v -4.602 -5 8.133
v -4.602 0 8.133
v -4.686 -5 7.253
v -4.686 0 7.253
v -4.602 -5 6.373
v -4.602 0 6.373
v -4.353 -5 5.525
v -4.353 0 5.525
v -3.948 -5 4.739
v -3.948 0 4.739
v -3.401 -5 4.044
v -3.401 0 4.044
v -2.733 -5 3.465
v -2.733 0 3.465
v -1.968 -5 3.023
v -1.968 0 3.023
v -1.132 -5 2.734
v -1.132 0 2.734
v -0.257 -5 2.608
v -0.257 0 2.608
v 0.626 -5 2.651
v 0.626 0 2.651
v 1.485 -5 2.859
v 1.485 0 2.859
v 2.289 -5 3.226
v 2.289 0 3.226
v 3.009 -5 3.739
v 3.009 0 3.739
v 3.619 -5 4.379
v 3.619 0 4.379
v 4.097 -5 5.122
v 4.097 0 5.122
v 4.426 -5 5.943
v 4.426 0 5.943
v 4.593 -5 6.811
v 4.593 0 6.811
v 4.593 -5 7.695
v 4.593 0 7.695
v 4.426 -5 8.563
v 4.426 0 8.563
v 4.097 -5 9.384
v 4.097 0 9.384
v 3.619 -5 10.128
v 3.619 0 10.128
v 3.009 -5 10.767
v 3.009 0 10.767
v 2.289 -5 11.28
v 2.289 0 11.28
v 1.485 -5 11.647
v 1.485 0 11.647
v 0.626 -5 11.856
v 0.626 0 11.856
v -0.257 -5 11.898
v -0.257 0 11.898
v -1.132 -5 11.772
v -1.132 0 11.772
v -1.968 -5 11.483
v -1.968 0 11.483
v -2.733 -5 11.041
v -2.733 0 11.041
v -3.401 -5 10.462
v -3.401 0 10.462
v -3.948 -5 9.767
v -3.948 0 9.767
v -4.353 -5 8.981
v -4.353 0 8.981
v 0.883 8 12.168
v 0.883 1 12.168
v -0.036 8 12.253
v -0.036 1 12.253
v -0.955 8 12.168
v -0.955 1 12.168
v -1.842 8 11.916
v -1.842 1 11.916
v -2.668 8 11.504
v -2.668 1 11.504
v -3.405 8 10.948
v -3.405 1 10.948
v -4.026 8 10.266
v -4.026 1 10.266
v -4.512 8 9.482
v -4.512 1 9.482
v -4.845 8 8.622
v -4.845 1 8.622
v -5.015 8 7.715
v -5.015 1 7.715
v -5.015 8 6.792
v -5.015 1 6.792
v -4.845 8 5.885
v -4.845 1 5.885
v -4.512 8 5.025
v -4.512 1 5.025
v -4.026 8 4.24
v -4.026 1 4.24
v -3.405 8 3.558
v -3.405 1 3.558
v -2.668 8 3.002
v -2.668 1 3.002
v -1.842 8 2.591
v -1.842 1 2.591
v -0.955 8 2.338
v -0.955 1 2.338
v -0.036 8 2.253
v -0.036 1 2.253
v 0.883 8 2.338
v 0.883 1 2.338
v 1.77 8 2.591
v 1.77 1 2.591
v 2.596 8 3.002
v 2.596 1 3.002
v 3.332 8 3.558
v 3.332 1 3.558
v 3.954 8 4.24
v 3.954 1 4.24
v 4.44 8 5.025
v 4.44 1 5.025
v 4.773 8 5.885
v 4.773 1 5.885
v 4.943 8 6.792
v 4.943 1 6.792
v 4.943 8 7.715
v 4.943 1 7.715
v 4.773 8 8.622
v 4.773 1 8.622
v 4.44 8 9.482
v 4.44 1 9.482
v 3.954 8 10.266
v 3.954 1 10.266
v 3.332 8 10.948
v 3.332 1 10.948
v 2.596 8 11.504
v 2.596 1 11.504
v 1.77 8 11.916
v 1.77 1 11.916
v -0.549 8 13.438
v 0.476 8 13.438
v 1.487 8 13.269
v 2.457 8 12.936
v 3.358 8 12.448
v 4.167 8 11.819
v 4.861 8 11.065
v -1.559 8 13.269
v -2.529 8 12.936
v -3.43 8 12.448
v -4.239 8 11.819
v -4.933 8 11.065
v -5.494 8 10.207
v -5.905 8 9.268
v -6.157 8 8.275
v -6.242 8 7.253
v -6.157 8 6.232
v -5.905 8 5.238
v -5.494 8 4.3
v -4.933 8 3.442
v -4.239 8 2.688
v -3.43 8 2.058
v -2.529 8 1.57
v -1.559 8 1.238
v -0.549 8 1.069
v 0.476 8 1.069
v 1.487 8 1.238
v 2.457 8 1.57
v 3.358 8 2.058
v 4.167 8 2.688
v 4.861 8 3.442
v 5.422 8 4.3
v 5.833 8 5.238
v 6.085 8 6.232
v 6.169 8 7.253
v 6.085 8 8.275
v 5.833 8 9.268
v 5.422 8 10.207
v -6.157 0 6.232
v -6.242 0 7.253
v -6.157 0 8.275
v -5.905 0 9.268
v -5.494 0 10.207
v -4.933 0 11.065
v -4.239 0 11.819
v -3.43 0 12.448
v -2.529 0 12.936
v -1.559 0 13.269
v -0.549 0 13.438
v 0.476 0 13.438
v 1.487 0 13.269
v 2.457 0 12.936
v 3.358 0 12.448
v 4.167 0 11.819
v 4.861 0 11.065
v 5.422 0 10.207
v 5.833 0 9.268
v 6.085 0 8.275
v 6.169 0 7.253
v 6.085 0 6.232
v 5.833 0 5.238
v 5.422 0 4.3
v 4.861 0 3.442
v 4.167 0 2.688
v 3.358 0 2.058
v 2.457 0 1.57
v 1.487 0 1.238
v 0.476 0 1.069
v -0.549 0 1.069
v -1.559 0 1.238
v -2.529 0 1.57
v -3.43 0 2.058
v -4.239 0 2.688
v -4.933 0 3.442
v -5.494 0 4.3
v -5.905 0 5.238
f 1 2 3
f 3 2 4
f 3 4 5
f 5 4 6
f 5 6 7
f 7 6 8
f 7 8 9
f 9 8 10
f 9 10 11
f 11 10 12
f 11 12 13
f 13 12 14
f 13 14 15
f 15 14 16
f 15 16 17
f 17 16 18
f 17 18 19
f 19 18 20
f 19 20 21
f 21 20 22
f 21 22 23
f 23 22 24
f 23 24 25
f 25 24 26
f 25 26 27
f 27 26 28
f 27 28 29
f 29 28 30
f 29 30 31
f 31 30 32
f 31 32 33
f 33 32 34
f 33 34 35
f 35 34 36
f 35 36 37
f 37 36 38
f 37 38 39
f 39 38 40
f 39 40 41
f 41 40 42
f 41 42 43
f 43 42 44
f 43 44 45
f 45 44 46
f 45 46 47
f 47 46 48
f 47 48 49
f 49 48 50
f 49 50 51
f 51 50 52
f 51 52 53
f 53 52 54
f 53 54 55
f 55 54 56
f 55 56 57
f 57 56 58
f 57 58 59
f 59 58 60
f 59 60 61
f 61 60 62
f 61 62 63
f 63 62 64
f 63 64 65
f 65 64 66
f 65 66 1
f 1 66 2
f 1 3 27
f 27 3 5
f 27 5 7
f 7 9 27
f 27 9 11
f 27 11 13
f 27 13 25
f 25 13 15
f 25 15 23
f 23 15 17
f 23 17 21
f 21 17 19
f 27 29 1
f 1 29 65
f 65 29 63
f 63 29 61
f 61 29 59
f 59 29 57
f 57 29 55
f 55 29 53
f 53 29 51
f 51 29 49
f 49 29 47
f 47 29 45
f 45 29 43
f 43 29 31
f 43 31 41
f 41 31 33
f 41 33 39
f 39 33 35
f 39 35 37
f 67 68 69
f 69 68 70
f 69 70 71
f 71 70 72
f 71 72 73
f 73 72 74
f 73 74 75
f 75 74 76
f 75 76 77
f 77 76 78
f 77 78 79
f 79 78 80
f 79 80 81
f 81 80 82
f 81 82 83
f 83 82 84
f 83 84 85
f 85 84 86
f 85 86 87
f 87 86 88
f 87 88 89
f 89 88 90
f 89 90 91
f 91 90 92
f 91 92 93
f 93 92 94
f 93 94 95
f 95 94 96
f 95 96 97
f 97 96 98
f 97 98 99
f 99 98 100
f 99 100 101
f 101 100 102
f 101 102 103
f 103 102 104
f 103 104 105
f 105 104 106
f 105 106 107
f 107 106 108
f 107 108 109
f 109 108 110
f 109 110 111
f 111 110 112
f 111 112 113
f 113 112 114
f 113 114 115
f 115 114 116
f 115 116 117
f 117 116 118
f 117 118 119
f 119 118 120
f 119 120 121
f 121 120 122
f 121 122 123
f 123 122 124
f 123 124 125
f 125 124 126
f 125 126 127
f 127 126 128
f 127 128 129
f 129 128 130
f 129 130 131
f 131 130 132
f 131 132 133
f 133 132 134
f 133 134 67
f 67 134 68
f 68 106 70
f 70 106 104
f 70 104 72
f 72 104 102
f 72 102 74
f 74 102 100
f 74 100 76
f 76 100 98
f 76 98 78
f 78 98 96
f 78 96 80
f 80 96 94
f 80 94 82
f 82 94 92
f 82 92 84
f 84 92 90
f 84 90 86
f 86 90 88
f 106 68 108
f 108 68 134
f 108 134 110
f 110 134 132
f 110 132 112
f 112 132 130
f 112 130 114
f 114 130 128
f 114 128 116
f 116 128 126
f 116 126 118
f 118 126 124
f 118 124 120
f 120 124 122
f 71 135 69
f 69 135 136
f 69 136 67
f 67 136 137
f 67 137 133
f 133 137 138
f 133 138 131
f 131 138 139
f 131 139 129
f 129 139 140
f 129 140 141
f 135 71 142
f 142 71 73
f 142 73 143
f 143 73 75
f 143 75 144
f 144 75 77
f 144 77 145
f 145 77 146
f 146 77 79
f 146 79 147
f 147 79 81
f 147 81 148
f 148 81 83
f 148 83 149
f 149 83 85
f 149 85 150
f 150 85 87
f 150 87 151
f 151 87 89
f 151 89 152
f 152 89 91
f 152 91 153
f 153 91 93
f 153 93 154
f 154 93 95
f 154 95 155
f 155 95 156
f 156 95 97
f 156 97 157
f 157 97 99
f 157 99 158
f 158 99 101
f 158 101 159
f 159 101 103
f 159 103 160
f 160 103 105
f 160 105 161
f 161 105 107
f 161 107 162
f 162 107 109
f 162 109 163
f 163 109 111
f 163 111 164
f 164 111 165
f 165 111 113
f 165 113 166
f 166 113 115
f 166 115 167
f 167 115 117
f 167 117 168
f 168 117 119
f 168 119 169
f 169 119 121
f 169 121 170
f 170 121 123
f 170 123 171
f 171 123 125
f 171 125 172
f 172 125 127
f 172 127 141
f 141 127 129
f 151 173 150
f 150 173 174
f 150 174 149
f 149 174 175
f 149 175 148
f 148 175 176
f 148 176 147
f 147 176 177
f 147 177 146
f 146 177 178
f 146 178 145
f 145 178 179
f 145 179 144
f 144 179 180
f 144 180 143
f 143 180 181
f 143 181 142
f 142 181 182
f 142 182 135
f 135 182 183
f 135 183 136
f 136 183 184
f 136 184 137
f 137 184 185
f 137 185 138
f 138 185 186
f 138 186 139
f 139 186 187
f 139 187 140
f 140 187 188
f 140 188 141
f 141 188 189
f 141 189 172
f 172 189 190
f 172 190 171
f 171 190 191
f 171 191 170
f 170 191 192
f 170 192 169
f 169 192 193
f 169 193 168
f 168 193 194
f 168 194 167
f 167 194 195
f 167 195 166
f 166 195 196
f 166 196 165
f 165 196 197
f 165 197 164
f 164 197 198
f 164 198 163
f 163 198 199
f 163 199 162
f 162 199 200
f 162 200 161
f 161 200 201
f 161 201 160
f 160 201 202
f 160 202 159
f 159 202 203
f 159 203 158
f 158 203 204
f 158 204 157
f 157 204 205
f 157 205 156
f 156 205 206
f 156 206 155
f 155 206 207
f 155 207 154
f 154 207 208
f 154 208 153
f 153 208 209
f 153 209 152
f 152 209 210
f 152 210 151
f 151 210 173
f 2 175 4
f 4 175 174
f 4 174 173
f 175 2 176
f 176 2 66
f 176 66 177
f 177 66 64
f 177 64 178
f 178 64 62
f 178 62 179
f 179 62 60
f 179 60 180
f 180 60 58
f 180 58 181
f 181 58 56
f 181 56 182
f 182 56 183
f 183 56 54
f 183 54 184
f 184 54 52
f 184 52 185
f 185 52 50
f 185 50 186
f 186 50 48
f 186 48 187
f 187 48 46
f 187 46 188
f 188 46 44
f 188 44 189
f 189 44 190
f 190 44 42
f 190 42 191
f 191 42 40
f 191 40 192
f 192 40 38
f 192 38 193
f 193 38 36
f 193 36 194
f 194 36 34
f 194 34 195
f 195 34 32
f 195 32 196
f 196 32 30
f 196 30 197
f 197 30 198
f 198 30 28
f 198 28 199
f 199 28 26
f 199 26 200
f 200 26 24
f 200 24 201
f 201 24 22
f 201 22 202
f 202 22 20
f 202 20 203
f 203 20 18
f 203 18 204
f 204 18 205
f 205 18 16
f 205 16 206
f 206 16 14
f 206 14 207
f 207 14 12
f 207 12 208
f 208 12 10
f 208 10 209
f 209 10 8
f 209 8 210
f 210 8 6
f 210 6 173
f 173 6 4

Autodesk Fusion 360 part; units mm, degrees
sketch "Sketch1" plane through (0, 0, 0) normal (0, 0, 1) x (1, 0, 0)
  curve L0
  curve L1
  curve L2
  curve L3
sketch "Sketch2" plane through (0, 0, 0) normal (0, 1, 0) x (1, 0, 0)
  circle A0 centre (-0.0361, -7.2532) radius 6.2056
extrude "Extrude2" add sketch "Sketch2" along normal blind 11
hole "Hole1" at (-1.2862, 11, 9.8296) direction (0, -1, 0) diameter 19 depth 3 tip angle 180
hole "Hole2" at (-0.0361, 8, 7.2532) direction (0, -1, 0) diameter 10 depth 7 tip angle 180
sketch "Sketch3" plane through (0, 0, 0) normal (0, 1, 0) x (1, 0, 0)
sketch "Sketch4" plane through (0, 0, 0) normal (0, -1, 0) x (1, 0, 0)
  circle A0 centre (-0.0361, 7.2532) radius 6.2056
  circle A1 centre (-0.0361, 7.2532) radius 4.65
extrude "Extrude4" add sketch "Sketch4" along normal blind 5 contours A1
extrude "Extrude3" [suppressed]
